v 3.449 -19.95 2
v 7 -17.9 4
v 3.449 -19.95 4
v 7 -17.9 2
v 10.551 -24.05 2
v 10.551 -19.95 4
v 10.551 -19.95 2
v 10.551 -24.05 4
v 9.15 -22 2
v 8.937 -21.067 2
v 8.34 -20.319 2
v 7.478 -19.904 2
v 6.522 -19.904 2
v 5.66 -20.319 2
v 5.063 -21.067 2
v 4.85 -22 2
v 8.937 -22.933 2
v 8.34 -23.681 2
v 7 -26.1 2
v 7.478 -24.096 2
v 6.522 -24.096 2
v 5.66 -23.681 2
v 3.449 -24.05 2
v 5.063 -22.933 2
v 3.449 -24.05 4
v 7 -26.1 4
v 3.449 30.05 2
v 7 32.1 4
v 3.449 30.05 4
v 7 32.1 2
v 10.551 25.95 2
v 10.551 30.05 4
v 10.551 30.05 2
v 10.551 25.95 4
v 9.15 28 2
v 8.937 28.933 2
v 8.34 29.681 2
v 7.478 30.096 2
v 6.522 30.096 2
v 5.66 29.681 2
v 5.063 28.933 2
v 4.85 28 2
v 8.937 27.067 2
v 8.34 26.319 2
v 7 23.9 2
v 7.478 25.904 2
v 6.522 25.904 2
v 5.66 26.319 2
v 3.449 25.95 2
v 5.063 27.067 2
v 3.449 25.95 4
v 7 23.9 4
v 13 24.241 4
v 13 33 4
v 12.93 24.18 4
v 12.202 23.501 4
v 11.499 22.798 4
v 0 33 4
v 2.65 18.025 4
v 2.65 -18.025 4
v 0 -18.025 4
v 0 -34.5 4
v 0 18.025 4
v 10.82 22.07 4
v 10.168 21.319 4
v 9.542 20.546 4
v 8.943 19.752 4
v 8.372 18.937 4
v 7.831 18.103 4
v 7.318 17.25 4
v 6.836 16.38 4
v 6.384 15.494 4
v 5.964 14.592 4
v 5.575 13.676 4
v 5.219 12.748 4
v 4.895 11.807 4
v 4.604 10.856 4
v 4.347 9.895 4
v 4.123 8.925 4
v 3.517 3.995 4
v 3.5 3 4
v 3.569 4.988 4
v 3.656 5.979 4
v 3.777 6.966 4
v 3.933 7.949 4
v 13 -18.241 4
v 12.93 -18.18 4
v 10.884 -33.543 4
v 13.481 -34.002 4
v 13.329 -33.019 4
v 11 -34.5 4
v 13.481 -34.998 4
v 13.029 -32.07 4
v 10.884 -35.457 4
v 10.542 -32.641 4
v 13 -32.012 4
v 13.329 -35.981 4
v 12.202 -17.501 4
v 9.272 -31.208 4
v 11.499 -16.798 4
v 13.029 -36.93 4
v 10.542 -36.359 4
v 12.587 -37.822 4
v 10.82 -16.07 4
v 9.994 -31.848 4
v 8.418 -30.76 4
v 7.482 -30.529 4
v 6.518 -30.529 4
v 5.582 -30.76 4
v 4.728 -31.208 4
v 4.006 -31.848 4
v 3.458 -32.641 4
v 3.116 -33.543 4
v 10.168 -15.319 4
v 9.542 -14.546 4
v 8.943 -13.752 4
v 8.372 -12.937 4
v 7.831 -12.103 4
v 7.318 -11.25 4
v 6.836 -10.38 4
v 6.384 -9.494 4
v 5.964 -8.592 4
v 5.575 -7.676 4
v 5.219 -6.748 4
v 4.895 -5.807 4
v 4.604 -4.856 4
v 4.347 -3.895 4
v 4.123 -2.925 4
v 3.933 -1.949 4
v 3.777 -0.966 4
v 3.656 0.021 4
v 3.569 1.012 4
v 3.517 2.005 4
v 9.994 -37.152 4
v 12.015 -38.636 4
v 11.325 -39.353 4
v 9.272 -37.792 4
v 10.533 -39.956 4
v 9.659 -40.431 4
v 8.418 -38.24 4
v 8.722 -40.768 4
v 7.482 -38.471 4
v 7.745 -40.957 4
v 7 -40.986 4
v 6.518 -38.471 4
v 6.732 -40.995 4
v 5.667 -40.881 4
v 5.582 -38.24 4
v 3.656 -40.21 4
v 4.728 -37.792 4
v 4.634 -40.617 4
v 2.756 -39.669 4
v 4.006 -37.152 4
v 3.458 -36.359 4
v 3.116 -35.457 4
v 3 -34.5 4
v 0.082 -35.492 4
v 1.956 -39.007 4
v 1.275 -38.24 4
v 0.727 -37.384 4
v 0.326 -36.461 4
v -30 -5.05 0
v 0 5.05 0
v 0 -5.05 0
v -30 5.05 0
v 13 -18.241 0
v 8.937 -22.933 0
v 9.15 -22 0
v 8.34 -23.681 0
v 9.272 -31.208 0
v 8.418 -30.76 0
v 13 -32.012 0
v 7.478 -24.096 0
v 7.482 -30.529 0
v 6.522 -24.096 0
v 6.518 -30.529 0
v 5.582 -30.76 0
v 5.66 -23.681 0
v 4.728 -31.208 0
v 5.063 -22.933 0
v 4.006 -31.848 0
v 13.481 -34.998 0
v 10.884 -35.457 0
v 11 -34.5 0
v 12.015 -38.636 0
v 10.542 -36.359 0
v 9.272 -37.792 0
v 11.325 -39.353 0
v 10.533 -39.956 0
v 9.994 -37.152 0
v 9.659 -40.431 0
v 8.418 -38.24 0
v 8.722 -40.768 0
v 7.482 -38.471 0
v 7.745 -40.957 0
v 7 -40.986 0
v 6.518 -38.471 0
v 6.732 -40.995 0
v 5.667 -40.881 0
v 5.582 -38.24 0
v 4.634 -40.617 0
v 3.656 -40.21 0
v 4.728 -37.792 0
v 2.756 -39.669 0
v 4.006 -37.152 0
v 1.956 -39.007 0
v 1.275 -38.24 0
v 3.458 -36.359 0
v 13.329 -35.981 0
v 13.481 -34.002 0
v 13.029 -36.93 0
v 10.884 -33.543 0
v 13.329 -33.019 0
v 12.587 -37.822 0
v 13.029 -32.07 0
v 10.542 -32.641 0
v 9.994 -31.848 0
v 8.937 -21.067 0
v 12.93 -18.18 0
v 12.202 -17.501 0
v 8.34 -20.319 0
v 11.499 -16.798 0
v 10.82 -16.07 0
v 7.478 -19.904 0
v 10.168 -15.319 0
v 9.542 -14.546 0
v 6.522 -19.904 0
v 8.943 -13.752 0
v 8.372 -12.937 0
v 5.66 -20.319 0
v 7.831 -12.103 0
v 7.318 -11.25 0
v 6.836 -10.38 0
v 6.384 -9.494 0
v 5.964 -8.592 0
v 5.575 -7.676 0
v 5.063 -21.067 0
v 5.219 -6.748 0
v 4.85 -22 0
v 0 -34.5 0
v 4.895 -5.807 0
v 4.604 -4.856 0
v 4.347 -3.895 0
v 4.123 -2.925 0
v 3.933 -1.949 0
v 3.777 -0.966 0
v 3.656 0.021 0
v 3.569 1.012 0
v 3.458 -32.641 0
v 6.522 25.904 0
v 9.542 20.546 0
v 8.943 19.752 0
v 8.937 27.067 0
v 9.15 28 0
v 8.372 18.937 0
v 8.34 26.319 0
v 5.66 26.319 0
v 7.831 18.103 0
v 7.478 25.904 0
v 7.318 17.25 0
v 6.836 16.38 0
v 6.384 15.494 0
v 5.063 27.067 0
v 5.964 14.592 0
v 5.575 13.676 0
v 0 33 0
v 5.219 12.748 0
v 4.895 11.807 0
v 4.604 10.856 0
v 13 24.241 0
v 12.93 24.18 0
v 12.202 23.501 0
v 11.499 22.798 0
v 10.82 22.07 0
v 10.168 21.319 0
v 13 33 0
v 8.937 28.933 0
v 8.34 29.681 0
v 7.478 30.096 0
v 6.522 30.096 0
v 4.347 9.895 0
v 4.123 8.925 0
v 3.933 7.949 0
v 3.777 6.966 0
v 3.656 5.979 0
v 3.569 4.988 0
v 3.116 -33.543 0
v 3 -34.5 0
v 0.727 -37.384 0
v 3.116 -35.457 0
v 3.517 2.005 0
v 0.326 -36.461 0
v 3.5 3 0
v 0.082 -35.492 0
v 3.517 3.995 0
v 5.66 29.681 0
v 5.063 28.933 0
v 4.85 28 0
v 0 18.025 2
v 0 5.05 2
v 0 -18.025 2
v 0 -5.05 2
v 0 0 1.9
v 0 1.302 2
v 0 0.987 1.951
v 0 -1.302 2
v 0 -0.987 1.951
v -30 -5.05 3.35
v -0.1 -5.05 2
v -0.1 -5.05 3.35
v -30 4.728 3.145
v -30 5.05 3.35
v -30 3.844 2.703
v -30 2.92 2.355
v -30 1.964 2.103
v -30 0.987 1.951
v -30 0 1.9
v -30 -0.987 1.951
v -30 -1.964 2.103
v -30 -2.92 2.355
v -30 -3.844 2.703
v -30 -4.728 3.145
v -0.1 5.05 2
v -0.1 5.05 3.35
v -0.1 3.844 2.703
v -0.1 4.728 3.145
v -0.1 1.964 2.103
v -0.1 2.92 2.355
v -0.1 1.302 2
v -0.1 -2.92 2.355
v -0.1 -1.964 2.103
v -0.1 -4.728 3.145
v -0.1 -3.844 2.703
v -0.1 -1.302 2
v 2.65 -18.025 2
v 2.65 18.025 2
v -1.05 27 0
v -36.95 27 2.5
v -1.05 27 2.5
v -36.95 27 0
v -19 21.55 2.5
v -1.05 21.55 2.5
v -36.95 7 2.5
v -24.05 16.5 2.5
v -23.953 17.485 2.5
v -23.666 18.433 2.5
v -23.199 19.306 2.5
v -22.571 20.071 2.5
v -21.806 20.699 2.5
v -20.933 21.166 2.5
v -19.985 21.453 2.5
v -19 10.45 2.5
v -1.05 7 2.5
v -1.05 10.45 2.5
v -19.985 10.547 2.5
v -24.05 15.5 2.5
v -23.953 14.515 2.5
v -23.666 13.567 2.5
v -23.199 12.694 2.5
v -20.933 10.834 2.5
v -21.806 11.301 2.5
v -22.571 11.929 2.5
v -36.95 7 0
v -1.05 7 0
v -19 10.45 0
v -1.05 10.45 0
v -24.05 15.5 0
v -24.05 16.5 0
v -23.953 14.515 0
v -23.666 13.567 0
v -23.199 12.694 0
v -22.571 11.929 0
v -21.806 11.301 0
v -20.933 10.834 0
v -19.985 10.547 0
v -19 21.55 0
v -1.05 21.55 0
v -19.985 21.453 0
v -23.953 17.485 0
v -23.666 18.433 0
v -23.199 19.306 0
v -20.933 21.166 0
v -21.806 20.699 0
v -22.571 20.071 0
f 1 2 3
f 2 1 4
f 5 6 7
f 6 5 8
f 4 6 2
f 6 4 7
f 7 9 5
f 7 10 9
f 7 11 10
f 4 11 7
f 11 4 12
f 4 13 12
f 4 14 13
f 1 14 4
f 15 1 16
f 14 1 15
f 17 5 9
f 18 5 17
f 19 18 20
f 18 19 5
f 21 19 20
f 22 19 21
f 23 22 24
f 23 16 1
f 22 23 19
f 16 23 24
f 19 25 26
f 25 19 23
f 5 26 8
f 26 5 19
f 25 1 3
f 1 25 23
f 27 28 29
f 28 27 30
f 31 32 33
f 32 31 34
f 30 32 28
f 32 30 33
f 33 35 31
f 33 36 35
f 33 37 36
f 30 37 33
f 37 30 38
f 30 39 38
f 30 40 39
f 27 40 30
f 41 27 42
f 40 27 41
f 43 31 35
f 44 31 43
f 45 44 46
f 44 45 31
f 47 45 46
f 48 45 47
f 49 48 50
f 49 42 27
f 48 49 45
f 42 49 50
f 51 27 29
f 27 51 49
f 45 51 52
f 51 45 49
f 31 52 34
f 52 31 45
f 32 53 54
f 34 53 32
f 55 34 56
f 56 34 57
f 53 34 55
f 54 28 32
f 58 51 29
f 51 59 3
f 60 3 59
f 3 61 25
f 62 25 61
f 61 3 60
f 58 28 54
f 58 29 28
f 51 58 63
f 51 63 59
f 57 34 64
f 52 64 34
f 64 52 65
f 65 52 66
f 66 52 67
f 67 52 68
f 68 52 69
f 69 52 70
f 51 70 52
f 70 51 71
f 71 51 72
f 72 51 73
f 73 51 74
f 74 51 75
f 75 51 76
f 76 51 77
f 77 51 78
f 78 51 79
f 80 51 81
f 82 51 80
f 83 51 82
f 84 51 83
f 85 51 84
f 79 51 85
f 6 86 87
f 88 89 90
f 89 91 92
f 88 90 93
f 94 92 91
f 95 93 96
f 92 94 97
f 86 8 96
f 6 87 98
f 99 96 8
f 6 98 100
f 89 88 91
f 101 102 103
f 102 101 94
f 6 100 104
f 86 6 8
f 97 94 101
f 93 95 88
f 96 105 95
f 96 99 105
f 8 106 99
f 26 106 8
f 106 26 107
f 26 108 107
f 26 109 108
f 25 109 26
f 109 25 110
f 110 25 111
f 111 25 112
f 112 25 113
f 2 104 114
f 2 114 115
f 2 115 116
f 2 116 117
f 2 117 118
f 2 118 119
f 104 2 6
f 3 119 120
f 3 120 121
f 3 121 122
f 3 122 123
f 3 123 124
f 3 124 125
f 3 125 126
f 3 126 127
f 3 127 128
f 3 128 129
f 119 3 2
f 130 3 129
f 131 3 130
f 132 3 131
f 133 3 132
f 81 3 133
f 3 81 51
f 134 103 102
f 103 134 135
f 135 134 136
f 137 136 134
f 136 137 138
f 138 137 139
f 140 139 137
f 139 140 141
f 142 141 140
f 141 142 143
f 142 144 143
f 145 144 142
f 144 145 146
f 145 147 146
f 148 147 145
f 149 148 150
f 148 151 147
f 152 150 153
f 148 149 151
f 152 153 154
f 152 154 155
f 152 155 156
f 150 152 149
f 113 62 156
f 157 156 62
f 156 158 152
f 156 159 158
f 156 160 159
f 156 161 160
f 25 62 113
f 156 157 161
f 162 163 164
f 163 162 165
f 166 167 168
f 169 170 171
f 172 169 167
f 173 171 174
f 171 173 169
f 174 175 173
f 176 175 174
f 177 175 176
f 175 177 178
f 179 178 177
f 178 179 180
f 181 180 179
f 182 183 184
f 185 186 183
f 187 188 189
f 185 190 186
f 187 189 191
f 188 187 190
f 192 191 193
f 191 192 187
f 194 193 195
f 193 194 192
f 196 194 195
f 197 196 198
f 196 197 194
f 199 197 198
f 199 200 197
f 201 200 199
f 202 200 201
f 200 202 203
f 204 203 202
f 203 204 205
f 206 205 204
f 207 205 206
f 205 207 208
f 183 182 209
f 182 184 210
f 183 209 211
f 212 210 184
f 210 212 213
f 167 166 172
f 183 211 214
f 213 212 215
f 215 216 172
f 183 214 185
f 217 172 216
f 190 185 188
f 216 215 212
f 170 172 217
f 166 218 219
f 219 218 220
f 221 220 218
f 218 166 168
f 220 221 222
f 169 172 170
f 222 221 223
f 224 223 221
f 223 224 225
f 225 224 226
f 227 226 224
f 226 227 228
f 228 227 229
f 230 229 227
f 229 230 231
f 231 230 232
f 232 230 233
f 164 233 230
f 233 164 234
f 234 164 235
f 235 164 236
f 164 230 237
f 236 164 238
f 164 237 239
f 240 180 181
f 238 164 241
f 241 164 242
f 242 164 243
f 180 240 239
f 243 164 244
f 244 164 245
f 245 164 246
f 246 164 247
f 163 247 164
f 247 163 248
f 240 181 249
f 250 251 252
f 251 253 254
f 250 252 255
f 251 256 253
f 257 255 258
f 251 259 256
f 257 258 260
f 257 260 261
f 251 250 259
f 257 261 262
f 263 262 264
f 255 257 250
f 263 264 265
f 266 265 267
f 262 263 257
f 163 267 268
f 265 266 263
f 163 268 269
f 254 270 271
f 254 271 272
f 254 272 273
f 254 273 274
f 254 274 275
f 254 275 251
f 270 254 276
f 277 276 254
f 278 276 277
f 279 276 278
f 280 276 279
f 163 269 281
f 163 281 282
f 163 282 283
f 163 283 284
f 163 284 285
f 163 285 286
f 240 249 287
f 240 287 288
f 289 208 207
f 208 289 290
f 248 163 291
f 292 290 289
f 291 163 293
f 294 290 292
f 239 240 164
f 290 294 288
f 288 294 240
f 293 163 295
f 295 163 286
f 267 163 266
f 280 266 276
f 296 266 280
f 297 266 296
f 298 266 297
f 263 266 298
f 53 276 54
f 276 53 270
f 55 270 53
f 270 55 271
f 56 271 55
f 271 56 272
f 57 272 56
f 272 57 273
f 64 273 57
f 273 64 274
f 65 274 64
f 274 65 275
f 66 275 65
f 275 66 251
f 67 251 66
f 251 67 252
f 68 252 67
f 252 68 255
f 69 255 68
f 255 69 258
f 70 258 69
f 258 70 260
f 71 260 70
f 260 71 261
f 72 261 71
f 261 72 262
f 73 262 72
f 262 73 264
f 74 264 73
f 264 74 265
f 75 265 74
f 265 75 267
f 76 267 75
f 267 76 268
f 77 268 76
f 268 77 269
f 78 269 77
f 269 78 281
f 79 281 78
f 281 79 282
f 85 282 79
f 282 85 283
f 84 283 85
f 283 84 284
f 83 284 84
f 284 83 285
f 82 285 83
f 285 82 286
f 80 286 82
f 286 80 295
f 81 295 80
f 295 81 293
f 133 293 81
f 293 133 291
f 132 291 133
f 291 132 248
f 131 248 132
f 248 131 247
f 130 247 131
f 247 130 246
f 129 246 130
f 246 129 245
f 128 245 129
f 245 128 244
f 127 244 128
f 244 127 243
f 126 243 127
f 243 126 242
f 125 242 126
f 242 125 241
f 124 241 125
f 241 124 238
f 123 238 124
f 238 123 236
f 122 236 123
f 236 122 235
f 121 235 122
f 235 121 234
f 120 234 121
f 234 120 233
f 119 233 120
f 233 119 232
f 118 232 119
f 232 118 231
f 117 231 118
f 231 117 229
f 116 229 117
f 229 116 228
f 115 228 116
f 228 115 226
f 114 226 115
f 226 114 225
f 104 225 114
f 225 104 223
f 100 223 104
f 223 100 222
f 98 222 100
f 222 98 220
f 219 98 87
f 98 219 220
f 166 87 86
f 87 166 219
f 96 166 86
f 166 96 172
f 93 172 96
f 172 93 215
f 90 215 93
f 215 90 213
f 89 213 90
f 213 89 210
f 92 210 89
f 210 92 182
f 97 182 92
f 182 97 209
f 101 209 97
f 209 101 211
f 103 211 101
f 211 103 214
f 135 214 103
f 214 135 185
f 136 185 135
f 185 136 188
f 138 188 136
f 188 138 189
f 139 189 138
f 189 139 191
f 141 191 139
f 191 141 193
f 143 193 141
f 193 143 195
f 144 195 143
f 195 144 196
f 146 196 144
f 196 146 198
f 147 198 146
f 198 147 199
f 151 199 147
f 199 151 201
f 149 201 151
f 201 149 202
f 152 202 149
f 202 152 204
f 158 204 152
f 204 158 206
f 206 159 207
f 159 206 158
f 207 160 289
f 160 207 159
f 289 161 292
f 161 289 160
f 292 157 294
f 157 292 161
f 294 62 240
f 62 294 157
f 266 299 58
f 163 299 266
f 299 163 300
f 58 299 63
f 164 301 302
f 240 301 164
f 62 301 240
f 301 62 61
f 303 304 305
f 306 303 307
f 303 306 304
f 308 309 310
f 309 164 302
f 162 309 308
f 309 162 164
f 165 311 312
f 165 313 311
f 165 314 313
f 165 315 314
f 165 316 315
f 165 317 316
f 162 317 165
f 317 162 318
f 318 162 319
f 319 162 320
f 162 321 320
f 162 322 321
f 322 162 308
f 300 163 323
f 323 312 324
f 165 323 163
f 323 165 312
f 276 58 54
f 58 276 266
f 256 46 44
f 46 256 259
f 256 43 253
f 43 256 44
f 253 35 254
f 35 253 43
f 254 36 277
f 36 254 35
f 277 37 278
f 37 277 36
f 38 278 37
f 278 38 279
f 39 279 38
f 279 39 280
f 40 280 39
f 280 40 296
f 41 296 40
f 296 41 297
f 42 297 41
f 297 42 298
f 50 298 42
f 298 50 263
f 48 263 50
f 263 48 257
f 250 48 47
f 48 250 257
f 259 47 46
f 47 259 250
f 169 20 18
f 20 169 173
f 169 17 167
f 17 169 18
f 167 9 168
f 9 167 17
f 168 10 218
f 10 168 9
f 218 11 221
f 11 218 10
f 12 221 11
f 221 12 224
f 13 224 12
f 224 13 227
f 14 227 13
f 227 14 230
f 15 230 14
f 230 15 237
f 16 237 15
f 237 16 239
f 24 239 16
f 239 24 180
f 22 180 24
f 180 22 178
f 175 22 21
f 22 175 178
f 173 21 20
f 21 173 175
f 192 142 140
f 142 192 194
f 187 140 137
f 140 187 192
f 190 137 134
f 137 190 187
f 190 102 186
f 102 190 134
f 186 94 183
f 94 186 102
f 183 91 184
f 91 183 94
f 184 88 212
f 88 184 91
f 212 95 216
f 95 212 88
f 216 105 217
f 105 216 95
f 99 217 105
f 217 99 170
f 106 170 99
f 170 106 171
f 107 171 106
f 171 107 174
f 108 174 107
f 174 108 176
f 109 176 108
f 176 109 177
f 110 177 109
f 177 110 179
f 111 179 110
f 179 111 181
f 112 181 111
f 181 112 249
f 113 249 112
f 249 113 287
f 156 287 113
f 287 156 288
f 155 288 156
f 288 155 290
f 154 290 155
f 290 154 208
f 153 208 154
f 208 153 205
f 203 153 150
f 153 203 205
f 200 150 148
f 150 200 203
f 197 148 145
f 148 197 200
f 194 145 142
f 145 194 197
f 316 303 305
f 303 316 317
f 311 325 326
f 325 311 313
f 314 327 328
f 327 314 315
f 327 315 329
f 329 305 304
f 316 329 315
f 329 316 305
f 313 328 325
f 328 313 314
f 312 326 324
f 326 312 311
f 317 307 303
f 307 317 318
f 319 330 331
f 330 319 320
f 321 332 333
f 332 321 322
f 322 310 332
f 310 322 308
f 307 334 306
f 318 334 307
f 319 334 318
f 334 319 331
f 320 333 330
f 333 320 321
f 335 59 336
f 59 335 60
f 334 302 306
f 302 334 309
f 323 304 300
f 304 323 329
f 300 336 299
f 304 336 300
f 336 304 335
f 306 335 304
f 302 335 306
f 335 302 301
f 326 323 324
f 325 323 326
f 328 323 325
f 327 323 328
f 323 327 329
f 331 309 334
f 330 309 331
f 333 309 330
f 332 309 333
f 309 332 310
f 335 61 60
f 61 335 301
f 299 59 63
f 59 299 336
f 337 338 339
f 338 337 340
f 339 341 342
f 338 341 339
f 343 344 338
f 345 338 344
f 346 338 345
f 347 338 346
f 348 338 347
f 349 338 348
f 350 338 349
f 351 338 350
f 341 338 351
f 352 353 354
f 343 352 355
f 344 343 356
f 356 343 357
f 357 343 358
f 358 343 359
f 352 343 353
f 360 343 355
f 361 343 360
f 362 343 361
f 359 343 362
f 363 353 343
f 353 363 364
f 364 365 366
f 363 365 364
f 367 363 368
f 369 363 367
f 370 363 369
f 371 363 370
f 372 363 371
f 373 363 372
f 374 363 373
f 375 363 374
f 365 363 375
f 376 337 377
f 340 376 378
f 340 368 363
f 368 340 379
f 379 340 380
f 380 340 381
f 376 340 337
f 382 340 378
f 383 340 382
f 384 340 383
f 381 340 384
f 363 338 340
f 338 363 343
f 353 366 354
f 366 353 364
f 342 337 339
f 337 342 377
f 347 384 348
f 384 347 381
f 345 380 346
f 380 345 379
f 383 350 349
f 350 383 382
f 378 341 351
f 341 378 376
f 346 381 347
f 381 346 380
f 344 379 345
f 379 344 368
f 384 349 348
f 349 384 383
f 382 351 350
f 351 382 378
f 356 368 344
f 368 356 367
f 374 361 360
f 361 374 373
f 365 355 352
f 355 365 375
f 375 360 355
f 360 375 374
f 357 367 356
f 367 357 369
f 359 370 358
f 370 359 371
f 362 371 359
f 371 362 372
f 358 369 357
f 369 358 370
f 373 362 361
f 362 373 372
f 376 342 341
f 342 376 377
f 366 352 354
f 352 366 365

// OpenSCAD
// file: basico.scad
////////////////////////////////////////////////////////////////////////////////////////////////////////////////////////
//
// utilidades y variables básicas que suelo usar
// It is licensed under the Creative Commons - GNU LGPL 2.1 license.
// © 2014-2017 by luiso gutierrez (sacamantecas)
//
// cada módulo tiene su ejemplo simple correspondiente
// se recomienda ver qué parámetros tiene y experimentar con ellos
//


// corte_a_capa(n, [por_exceso]) ajusta una altura a nº entero de capas (se espera que el llamador haya asignado valor a $alto_de_capa)
function corte_a_capa(cuanto, exceso=false) = floor((cuanto+(exceso?($alto_de_capa-.0001):0))/$alto_de_capa)*$alto_de_capa;
// correccion() sirve para remarcar el código donde se hace una corrección sobre un valor teórico para que la pieza salga perfecta en la práctica
function correccion( valor )=valor; 
// numero de facetas segun el diametro, ajustado a multiplo de 4 para casar figuras ortogonales
function fn(d) = floor(( d/$fs*3.1416+3)/4)*4 ; 



////////////////////////////////////////////////////////////////////////////////////////////////////////////////////////////////////////////////////////


mp = .1 ; // muy poco


// Para ayudar a la depuración dibujando un aspa (mejor resaltada con #) en el punto actual o con una traslación a partir del mismo
// ejemplo: marcar el punto y la orientación dentro de una transformación compleja:
//		translate([20, 0, 0]) rotate([0, 0, 60]) translate([0,30,0]) rotate([0,45,0]) translate([0,0,40]) aspa();
// es pueden dibujar planos en vez de ejes, por ejemplo el plano perpendicular a Y con el eje Y (los ejes X y Z no se pintan porque quedan incluidos en el plano): 
//		aspa([0,1,0]);
module aspa(normales=[0,0,0]) {
	mucho=200 ;
	if (normales[0]) cube([mp,mucho,mucho], center=true);
	if (normales[1]) cube([mucho,mp,mucho], center=true);
	if (normales[2]) cube([mucho,mucho,mp], center=true);
	if (!(normales[1]+normales[2])) cube([mucho,mp,mp], center=true);
	if (!(normales[0]+normales[2])) cube([mp,mucho,mp], center=true);
	if (!(normales[0]+normales[1])) cube([mp,mp,mucho], center=true);
}


////////////////////////////////////////////////////////////////////////////////////////////////////////////////////////////////////////////////////////
// afeitar una pieza: es un corte adelantado en la base, para ahorrarnos el afeitado posterior de la pieza
// dificilmente una transformación puede ser más lenta :(
// ejemplo:
//		afeita() cube([30, 20, 10]);
module afeita(cuanto=.25) {
	maximo=200 ;
	
	difference() {
		children();
		if (cuanto)
			minkowski() {
				difference() {
					translate([-maximo/2,-maximo/2,-mp])
						cube([maximo,maximo,$alto_de_capa+mp]);
					render()
						children();
				}
				translate([0,0,-mp])
					cylinder(r=cuanto, h=mp, $fn=4);
			}
	}
}

////////////////////////////////////////////////////////////////////////////////////////////////////////////////////////////////////////////////////////
// agujero para meter una rosca de embutir dándole un calentón con el soldador
// el soporte por defecto no se pone, y si se pone es para agujero horizontal por defecto
// ejemplo:	$fa=1;$fs=1;$alto_de_capa=.3; difference() { %cube([30, 20, 20]); translate([15, 0, 10]) rotate([-90,0,0]) rosca_embutir(soportada=1); translate([15, 10,20]) rotate([180,0,0]) rosca_embutir(8) ; translate([15, 0, 0]) rosca_embutir(soportada=1, soporte_axial=1); }
module rosca_embutir(profundidad=5, soportada=0, soporte_axial=0) {
	H = 4 ;	
	Dg = [5.6, 5.2];
	Dp = 3.4;
	ancho_churrito = .5;
	$fn=12;

	if ($alto_de_capa == undef) echo("$alto_de_capa SIN DEFINIR, ESTO NO PUEDE SALIR BIEN")	;
	
	difference() {
		union() {
			translate([0,0,(H-mp)/2]) cylinder(d1=Dg[0], d2=Dg[1], h=H+mp, center=true);
			translate([0,0,profundidad/2]) cylinder(d=Dp, h=profundidad, center=true);
		}
		if (soportada) {
			if (soporte_axial)
				translate([0, 0, -mp])				
					difference() {
						cylinder(d=Dp + 2 * ancho_churrito, h=H - $alto_de_capa + mp);
						translate([0, 0, -mp])
							cylinder(d = Dp, h=H - $alto_de_capa + 3*mp);
					}
			else {
				escala = (Dg[0] - 2 * $alto_de_capa) / Dg[0] ;
				angulo_voladizo = 50 ; // para estos tamaños se puede usar hasta 60º 
				translate([0,0,-1.5]) // un hueco horizontal de 1.5 está bien
					intersection() {
						scale([escala, escala, 1])
							rosca_embutir(profundidad=0, soportada=0);
						translate([0,0,profundidad/2])
							cube([Dg[0] * cos(angulo_voladizo), 6, profundidad], center=true);
					}
			}
		}
	}
}
// main file
/*
Pieza muy rara que se apoya en el canto superior derecho de la pieza derecha del carro X
Consta de 2 piezas pegadas entre si:
	- una vertical en forma de T cuyo brazo vertical encaja en el hueco de los rodamientos, y el horizonal tiene 3 agujeros: 2 para el ventilador y un tercero para un potenciómetro
	- una horizontal en C que se agarra a la varilla de Z y se pega a la T

El origen de coordenadas va a ser en X el lado derecho del carro X, para Y la posición de la varilla, y para Z el borde superior del carro X	
	
*/

$fa=1; $fs=1;
X=0; Y=1; Z=2;
mp=.1;
use <basico.scad>


fabricar=1;



vent_ancho = 60;
vent_agujeros_separa = 50;
vent_agujeros_d = correccion(4  +  .3); // ya holgado
vent_eje_Y = 3; // va descentrado respecto a la varilla, algo hacia detrás
vent_di = 57; // diámetro interior
vent_alzado = 2; // cuánto queda el borde inferior por encima de Z=0

pote_agj_d = 8; // ya holgado;
pote_separa = 1;
pote_d = 13;
pote_Z = vent_alzado + (vent_ancho - vent_agujeros_separa) / 2; // alineado con los agujeros del ventilador
pote_Y = vent_eje_Y - vent_ancho/2 - pote_d/2 - pote_separa;


varilla_d = correccion(10  + .1);
varilla_X = -11.5;
rodamiento_d = 19.2; //  ya holgado

Tv_dy = correccion(10.4  - .3);
Tv_dz = 30;
T_dx = 4;
Th_dz = (vent_ancho - vent_agujeros_separa) +vent_alzado + 1;
Th_dy = vent_ancho;
Th_hueco_tuerca_dx = 2;
Th_tuerca_d = 8.2;

C = correccion([20, 36, 2.5] + [0, -.1, 0]);
C_penetra = 2;
C_X = -T_dx -C[X] + C_penetra;
C_holgura_varilla = 1; // una holgura en el lado derecho para facilitar la colocación


// la T
//render()
rotate([0, fabricar?90:0,0])
difference() {
	translate([-T_dx, 0, 0]) rotate([0,90,0]) linear_extrude(T_dx) Tv_2D();
	translate([varilla_X, 0, -Tv_dz - mp]) cylinder(d=rodamiento_d, h=Tv_dz + mp);
	translate([-T_dx-mp, vent_eje_Y, vent_alzado + (vent_ancho - vent_agujeros_separa)/2])
		for (lado=[-1, 1])
			translate([0, lado * vent_agujeros_separa/2])
				rotate([0, 90])
					rotate([0,0,30])
						cylinder(d=Th_tuerca_d, h=Th_hueco_tuerca_dx + mp, $fn=6); 
	holgura_C = [0, .15, .15];
	translate([C_X, -(C[Y]+holgura_C[Y])/2, -mp]) cube(C + holgura_C + [0,0,mp]);
}

// la C
translate(fabricar?[-19,5]:[0,0])
rotate([0, 0, fabricar ? -90 : 0,0])
difference() {
	translate([C_X, -C[Y]/2]) cube(C);
	translate([varilla_X, 0, -mp]) cylinder(d=varilla_d, h=C[Z] +2*mp);
	translate([varilla_X, -varilla_d/2, -mp]) cube([C_holgura_varilla, C[Y]/2 + varilla_d/2+mp, C[Z] + 2*mp]);
	translate([varilla_X + C_holgura_varilla, 0, -mp]) cylinder(d=varilla_d, h=C[Z] +2*mp);
	translate([varilla_X-varilla_d/2, 0, -mp]) cube([varilla_d + C_holgura_varilla, C[Y]/2+mp, C[Z] + 2*mp]);
}


if (! fabricar) %guias();


module guias() {
	av = 15; // ancho del ventilador
	translate([av/2, vent_eje_Y, vent_alzado + vent_ancho/2])
		difference() {
			cube([av, vent_ancho, vent_ancho], center=true);
			rotate([0, 90, 0])cylinder(d=vent_di, h=av+1, center=true);
			pulopo = vent_agujeros_separa/2 * sqrt(2);
			for (angulo=[45, 135, 225, 315])
				translate([0, pulopo * cos(angulo), pulopo * sin(angulo)])
					rotate([0, 90,0]) cylinder(d=vent_agujeros_d, h=av+1, center=true);
		}
	translate([0, pote_Y, pote_Z])
		rotate([0, 90, 0]) 
		rotate([0, 0, -90]) 
			translate([0,0,-20]) {
				cylinder(d=pote_d, h=13);
				translate([-13/2, -13/2, 0])cube([8,13,13]);
				translate([0,0,13]) cylinder(d=7, h=13);
				translate([0,0,26]) cylinder(d=6, h=13);
			}
	
}
	
	

module Tv_2D() {
	translate([0, -Tv_dy/2]) square([Tv_dz, Tv_dy]);
	difference() {
		union() {
			translate([-Th_dz, vent_eje_Y - Th_dy/2]) square([Th_dz, Th_dy]);
			// soporte del potenciómetro unido como es debido
			translate([-pote_Z, pote_Y]) {
				intersection() { circle(d=pote_d); translate([-pote_d/2, -pote_d/2]) square([pote_d/2, pote_d]); }
				resize([pote_Z, 0]) intersection() { circle(d=pote_d); translate([0, -pote_d/2]) square(pote_d/2); }
				translate([pote_Z-Th_dz, 0]) square([Th_dz, vent_eje_Y - vent_ancho/2 - pote_Y]); }
		}
		// agujeros para el aire, el potenciómetro y los tornillos del ventilador
		translate([-vent_ancho/2 - vent_alzado, vent_eje_Y]) circle(d=vent_di);
		translate([-pote_Z, pote_Y]) circle(d=pote_agj_d);
		translate([-vent_alzado - (vent_ancho - vent_agujeros_separa)/2, vent_eje_Y])
			for (lado=[-1, 1])
				translate([0, lado * vent_agujeros_separa/2])
					circle(d=vent_agujeros_d); 
	}
}
